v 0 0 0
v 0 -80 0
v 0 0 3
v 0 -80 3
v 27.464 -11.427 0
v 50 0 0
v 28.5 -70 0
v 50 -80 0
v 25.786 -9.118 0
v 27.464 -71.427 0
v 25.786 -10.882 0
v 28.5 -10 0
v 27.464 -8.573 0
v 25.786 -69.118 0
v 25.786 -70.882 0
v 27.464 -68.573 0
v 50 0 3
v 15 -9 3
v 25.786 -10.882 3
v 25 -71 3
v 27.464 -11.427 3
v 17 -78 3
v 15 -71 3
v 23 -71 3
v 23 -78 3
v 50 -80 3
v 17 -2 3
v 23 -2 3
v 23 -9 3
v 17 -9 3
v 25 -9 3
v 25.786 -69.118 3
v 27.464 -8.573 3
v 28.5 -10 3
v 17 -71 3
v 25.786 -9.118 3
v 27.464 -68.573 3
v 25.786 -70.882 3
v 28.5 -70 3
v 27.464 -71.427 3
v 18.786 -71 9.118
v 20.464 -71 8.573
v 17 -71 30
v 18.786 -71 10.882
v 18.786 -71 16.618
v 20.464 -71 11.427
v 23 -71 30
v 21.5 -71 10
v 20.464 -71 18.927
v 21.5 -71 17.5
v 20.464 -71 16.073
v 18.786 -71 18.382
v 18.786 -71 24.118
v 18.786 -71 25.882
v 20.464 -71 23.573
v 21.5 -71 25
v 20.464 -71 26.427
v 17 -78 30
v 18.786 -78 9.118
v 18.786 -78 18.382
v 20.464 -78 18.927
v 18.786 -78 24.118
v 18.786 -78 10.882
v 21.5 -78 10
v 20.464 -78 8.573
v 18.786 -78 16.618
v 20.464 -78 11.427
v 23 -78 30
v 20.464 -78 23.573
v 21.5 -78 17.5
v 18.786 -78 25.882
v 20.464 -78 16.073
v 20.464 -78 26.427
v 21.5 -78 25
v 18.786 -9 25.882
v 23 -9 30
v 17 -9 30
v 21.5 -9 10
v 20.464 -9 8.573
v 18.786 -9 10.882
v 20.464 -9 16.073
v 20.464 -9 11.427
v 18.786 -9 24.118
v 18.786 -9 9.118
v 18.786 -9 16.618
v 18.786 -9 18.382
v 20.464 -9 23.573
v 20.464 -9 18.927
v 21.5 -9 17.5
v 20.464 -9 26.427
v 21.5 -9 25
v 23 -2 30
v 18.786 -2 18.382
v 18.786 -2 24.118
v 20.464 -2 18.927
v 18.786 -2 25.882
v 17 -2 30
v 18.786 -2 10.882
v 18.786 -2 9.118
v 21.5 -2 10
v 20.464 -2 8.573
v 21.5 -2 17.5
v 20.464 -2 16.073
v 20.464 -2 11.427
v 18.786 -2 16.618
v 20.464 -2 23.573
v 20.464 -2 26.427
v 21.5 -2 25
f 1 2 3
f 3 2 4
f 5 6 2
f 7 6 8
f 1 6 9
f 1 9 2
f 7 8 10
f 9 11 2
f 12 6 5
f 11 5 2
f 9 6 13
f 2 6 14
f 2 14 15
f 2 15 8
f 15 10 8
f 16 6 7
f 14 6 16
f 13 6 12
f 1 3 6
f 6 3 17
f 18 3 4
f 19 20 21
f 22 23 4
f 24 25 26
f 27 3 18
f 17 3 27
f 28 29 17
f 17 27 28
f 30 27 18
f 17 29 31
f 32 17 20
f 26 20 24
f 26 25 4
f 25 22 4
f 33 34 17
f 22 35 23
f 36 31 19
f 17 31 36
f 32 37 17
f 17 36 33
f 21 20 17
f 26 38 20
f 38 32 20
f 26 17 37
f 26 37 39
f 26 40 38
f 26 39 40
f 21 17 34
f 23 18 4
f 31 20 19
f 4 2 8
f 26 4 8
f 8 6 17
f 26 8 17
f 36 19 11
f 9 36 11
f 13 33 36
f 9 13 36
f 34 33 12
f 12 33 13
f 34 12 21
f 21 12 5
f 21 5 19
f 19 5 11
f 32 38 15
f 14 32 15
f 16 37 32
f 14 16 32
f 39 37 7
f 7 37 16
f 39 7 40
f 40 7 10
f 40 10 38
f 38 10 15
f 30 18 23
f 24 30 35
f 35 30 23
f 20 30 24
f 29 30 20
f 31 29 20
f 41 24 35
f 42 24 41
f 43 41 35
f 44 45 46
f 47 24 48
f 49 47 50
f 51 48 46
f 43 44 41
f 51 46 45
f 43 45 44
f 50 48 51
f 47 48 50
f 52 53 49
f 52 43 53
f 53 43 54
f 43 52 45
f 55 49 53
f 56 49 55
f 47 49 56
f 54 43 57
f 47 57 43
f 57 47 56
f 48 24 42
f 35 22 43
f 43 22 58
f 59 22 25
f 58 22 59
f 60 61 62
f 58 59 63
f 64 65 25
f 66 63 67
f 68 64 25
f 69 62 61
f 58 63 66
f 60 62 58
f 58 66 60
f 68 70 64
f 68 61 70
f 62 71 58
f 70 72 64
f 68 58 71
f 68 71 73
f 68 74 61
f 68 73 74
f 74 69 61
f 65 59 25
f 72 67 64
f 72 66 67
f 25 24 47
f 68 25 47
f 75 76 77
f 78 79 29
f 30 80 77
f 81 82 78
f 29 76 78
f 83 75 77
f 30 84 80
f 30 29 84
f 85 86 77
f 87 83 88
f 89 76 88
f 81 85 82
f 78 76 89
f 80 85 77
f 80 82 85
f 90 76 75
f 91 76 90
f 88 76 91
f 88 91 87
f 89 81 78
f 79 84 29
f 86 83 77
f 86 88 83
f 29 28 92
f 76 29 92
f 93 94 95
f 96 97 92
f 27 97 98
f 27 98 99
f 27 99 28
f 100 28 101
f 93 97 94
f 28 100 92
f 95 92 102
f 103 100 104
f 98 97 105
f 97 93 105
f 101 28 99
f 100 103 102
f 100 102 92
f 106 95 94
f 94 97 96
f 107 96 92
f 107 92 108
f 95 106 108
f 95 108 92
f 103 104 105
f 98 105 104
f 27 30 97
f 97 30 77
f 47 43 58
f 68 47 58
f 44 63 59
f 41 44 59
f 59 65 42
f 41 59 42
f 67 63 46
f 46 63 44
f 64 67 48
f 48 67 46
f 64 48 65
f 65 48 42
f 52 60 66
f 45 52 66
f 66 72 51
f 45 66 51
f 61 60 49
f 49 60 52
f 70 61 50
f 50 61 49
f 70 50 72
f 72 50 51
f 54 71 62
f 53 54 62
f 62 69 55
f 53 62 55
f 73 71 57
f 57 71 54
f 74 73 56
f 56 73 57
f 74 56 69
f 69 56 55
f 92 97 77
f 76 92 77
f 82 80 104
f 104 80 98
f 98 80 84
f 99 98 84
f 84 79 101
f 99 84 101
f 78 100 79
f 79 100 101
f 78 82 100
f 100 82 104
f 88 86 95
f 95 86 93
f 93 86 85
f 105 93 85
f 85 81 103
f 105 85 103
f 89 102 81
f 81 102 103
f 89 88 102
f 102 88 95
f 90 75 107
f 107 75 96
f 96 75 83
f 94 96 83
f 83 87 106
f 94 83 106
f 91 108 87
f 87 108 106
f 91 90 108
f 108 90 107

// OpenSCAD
rotate([90,0,0])difference()
{
	union()
	{
		cube([50,3,80]);
		translate([17,0,2])cube([6,30,76]);
	}
	translate([15,3,9])cube([10,30,62]);

	color("yellow")translate([20,10,1])cylinder(r=1.5,h=10);		//grub hole
	color("yellow")translate([20,17.5,1])cylinder(r=1.5,h=10);	//grub hole
	color("yellow")translate([20,25,1])cylinder(r=1.5,h=10);		//grub hole

	color("yellow")translate([20,10,69])cylinder(r=1.5,h=10);		//grub hole
	color("yellow")translate([20,17.5,69])cylinder(r=1.5,h=10);	//grub hole
	color("yellow")translate([20,25,69])cylinder(r=1.5,h=10);		//grub hole

color("red")translate([27,5,70])rotate([90,0,0])cylinder(r=1.5,h=10);	//grub hole for PCB
color("red")translate([27,5,10])rotate([90,0,0])cylinder(r=1.5,h=10);	//grub hole for PCB

}
